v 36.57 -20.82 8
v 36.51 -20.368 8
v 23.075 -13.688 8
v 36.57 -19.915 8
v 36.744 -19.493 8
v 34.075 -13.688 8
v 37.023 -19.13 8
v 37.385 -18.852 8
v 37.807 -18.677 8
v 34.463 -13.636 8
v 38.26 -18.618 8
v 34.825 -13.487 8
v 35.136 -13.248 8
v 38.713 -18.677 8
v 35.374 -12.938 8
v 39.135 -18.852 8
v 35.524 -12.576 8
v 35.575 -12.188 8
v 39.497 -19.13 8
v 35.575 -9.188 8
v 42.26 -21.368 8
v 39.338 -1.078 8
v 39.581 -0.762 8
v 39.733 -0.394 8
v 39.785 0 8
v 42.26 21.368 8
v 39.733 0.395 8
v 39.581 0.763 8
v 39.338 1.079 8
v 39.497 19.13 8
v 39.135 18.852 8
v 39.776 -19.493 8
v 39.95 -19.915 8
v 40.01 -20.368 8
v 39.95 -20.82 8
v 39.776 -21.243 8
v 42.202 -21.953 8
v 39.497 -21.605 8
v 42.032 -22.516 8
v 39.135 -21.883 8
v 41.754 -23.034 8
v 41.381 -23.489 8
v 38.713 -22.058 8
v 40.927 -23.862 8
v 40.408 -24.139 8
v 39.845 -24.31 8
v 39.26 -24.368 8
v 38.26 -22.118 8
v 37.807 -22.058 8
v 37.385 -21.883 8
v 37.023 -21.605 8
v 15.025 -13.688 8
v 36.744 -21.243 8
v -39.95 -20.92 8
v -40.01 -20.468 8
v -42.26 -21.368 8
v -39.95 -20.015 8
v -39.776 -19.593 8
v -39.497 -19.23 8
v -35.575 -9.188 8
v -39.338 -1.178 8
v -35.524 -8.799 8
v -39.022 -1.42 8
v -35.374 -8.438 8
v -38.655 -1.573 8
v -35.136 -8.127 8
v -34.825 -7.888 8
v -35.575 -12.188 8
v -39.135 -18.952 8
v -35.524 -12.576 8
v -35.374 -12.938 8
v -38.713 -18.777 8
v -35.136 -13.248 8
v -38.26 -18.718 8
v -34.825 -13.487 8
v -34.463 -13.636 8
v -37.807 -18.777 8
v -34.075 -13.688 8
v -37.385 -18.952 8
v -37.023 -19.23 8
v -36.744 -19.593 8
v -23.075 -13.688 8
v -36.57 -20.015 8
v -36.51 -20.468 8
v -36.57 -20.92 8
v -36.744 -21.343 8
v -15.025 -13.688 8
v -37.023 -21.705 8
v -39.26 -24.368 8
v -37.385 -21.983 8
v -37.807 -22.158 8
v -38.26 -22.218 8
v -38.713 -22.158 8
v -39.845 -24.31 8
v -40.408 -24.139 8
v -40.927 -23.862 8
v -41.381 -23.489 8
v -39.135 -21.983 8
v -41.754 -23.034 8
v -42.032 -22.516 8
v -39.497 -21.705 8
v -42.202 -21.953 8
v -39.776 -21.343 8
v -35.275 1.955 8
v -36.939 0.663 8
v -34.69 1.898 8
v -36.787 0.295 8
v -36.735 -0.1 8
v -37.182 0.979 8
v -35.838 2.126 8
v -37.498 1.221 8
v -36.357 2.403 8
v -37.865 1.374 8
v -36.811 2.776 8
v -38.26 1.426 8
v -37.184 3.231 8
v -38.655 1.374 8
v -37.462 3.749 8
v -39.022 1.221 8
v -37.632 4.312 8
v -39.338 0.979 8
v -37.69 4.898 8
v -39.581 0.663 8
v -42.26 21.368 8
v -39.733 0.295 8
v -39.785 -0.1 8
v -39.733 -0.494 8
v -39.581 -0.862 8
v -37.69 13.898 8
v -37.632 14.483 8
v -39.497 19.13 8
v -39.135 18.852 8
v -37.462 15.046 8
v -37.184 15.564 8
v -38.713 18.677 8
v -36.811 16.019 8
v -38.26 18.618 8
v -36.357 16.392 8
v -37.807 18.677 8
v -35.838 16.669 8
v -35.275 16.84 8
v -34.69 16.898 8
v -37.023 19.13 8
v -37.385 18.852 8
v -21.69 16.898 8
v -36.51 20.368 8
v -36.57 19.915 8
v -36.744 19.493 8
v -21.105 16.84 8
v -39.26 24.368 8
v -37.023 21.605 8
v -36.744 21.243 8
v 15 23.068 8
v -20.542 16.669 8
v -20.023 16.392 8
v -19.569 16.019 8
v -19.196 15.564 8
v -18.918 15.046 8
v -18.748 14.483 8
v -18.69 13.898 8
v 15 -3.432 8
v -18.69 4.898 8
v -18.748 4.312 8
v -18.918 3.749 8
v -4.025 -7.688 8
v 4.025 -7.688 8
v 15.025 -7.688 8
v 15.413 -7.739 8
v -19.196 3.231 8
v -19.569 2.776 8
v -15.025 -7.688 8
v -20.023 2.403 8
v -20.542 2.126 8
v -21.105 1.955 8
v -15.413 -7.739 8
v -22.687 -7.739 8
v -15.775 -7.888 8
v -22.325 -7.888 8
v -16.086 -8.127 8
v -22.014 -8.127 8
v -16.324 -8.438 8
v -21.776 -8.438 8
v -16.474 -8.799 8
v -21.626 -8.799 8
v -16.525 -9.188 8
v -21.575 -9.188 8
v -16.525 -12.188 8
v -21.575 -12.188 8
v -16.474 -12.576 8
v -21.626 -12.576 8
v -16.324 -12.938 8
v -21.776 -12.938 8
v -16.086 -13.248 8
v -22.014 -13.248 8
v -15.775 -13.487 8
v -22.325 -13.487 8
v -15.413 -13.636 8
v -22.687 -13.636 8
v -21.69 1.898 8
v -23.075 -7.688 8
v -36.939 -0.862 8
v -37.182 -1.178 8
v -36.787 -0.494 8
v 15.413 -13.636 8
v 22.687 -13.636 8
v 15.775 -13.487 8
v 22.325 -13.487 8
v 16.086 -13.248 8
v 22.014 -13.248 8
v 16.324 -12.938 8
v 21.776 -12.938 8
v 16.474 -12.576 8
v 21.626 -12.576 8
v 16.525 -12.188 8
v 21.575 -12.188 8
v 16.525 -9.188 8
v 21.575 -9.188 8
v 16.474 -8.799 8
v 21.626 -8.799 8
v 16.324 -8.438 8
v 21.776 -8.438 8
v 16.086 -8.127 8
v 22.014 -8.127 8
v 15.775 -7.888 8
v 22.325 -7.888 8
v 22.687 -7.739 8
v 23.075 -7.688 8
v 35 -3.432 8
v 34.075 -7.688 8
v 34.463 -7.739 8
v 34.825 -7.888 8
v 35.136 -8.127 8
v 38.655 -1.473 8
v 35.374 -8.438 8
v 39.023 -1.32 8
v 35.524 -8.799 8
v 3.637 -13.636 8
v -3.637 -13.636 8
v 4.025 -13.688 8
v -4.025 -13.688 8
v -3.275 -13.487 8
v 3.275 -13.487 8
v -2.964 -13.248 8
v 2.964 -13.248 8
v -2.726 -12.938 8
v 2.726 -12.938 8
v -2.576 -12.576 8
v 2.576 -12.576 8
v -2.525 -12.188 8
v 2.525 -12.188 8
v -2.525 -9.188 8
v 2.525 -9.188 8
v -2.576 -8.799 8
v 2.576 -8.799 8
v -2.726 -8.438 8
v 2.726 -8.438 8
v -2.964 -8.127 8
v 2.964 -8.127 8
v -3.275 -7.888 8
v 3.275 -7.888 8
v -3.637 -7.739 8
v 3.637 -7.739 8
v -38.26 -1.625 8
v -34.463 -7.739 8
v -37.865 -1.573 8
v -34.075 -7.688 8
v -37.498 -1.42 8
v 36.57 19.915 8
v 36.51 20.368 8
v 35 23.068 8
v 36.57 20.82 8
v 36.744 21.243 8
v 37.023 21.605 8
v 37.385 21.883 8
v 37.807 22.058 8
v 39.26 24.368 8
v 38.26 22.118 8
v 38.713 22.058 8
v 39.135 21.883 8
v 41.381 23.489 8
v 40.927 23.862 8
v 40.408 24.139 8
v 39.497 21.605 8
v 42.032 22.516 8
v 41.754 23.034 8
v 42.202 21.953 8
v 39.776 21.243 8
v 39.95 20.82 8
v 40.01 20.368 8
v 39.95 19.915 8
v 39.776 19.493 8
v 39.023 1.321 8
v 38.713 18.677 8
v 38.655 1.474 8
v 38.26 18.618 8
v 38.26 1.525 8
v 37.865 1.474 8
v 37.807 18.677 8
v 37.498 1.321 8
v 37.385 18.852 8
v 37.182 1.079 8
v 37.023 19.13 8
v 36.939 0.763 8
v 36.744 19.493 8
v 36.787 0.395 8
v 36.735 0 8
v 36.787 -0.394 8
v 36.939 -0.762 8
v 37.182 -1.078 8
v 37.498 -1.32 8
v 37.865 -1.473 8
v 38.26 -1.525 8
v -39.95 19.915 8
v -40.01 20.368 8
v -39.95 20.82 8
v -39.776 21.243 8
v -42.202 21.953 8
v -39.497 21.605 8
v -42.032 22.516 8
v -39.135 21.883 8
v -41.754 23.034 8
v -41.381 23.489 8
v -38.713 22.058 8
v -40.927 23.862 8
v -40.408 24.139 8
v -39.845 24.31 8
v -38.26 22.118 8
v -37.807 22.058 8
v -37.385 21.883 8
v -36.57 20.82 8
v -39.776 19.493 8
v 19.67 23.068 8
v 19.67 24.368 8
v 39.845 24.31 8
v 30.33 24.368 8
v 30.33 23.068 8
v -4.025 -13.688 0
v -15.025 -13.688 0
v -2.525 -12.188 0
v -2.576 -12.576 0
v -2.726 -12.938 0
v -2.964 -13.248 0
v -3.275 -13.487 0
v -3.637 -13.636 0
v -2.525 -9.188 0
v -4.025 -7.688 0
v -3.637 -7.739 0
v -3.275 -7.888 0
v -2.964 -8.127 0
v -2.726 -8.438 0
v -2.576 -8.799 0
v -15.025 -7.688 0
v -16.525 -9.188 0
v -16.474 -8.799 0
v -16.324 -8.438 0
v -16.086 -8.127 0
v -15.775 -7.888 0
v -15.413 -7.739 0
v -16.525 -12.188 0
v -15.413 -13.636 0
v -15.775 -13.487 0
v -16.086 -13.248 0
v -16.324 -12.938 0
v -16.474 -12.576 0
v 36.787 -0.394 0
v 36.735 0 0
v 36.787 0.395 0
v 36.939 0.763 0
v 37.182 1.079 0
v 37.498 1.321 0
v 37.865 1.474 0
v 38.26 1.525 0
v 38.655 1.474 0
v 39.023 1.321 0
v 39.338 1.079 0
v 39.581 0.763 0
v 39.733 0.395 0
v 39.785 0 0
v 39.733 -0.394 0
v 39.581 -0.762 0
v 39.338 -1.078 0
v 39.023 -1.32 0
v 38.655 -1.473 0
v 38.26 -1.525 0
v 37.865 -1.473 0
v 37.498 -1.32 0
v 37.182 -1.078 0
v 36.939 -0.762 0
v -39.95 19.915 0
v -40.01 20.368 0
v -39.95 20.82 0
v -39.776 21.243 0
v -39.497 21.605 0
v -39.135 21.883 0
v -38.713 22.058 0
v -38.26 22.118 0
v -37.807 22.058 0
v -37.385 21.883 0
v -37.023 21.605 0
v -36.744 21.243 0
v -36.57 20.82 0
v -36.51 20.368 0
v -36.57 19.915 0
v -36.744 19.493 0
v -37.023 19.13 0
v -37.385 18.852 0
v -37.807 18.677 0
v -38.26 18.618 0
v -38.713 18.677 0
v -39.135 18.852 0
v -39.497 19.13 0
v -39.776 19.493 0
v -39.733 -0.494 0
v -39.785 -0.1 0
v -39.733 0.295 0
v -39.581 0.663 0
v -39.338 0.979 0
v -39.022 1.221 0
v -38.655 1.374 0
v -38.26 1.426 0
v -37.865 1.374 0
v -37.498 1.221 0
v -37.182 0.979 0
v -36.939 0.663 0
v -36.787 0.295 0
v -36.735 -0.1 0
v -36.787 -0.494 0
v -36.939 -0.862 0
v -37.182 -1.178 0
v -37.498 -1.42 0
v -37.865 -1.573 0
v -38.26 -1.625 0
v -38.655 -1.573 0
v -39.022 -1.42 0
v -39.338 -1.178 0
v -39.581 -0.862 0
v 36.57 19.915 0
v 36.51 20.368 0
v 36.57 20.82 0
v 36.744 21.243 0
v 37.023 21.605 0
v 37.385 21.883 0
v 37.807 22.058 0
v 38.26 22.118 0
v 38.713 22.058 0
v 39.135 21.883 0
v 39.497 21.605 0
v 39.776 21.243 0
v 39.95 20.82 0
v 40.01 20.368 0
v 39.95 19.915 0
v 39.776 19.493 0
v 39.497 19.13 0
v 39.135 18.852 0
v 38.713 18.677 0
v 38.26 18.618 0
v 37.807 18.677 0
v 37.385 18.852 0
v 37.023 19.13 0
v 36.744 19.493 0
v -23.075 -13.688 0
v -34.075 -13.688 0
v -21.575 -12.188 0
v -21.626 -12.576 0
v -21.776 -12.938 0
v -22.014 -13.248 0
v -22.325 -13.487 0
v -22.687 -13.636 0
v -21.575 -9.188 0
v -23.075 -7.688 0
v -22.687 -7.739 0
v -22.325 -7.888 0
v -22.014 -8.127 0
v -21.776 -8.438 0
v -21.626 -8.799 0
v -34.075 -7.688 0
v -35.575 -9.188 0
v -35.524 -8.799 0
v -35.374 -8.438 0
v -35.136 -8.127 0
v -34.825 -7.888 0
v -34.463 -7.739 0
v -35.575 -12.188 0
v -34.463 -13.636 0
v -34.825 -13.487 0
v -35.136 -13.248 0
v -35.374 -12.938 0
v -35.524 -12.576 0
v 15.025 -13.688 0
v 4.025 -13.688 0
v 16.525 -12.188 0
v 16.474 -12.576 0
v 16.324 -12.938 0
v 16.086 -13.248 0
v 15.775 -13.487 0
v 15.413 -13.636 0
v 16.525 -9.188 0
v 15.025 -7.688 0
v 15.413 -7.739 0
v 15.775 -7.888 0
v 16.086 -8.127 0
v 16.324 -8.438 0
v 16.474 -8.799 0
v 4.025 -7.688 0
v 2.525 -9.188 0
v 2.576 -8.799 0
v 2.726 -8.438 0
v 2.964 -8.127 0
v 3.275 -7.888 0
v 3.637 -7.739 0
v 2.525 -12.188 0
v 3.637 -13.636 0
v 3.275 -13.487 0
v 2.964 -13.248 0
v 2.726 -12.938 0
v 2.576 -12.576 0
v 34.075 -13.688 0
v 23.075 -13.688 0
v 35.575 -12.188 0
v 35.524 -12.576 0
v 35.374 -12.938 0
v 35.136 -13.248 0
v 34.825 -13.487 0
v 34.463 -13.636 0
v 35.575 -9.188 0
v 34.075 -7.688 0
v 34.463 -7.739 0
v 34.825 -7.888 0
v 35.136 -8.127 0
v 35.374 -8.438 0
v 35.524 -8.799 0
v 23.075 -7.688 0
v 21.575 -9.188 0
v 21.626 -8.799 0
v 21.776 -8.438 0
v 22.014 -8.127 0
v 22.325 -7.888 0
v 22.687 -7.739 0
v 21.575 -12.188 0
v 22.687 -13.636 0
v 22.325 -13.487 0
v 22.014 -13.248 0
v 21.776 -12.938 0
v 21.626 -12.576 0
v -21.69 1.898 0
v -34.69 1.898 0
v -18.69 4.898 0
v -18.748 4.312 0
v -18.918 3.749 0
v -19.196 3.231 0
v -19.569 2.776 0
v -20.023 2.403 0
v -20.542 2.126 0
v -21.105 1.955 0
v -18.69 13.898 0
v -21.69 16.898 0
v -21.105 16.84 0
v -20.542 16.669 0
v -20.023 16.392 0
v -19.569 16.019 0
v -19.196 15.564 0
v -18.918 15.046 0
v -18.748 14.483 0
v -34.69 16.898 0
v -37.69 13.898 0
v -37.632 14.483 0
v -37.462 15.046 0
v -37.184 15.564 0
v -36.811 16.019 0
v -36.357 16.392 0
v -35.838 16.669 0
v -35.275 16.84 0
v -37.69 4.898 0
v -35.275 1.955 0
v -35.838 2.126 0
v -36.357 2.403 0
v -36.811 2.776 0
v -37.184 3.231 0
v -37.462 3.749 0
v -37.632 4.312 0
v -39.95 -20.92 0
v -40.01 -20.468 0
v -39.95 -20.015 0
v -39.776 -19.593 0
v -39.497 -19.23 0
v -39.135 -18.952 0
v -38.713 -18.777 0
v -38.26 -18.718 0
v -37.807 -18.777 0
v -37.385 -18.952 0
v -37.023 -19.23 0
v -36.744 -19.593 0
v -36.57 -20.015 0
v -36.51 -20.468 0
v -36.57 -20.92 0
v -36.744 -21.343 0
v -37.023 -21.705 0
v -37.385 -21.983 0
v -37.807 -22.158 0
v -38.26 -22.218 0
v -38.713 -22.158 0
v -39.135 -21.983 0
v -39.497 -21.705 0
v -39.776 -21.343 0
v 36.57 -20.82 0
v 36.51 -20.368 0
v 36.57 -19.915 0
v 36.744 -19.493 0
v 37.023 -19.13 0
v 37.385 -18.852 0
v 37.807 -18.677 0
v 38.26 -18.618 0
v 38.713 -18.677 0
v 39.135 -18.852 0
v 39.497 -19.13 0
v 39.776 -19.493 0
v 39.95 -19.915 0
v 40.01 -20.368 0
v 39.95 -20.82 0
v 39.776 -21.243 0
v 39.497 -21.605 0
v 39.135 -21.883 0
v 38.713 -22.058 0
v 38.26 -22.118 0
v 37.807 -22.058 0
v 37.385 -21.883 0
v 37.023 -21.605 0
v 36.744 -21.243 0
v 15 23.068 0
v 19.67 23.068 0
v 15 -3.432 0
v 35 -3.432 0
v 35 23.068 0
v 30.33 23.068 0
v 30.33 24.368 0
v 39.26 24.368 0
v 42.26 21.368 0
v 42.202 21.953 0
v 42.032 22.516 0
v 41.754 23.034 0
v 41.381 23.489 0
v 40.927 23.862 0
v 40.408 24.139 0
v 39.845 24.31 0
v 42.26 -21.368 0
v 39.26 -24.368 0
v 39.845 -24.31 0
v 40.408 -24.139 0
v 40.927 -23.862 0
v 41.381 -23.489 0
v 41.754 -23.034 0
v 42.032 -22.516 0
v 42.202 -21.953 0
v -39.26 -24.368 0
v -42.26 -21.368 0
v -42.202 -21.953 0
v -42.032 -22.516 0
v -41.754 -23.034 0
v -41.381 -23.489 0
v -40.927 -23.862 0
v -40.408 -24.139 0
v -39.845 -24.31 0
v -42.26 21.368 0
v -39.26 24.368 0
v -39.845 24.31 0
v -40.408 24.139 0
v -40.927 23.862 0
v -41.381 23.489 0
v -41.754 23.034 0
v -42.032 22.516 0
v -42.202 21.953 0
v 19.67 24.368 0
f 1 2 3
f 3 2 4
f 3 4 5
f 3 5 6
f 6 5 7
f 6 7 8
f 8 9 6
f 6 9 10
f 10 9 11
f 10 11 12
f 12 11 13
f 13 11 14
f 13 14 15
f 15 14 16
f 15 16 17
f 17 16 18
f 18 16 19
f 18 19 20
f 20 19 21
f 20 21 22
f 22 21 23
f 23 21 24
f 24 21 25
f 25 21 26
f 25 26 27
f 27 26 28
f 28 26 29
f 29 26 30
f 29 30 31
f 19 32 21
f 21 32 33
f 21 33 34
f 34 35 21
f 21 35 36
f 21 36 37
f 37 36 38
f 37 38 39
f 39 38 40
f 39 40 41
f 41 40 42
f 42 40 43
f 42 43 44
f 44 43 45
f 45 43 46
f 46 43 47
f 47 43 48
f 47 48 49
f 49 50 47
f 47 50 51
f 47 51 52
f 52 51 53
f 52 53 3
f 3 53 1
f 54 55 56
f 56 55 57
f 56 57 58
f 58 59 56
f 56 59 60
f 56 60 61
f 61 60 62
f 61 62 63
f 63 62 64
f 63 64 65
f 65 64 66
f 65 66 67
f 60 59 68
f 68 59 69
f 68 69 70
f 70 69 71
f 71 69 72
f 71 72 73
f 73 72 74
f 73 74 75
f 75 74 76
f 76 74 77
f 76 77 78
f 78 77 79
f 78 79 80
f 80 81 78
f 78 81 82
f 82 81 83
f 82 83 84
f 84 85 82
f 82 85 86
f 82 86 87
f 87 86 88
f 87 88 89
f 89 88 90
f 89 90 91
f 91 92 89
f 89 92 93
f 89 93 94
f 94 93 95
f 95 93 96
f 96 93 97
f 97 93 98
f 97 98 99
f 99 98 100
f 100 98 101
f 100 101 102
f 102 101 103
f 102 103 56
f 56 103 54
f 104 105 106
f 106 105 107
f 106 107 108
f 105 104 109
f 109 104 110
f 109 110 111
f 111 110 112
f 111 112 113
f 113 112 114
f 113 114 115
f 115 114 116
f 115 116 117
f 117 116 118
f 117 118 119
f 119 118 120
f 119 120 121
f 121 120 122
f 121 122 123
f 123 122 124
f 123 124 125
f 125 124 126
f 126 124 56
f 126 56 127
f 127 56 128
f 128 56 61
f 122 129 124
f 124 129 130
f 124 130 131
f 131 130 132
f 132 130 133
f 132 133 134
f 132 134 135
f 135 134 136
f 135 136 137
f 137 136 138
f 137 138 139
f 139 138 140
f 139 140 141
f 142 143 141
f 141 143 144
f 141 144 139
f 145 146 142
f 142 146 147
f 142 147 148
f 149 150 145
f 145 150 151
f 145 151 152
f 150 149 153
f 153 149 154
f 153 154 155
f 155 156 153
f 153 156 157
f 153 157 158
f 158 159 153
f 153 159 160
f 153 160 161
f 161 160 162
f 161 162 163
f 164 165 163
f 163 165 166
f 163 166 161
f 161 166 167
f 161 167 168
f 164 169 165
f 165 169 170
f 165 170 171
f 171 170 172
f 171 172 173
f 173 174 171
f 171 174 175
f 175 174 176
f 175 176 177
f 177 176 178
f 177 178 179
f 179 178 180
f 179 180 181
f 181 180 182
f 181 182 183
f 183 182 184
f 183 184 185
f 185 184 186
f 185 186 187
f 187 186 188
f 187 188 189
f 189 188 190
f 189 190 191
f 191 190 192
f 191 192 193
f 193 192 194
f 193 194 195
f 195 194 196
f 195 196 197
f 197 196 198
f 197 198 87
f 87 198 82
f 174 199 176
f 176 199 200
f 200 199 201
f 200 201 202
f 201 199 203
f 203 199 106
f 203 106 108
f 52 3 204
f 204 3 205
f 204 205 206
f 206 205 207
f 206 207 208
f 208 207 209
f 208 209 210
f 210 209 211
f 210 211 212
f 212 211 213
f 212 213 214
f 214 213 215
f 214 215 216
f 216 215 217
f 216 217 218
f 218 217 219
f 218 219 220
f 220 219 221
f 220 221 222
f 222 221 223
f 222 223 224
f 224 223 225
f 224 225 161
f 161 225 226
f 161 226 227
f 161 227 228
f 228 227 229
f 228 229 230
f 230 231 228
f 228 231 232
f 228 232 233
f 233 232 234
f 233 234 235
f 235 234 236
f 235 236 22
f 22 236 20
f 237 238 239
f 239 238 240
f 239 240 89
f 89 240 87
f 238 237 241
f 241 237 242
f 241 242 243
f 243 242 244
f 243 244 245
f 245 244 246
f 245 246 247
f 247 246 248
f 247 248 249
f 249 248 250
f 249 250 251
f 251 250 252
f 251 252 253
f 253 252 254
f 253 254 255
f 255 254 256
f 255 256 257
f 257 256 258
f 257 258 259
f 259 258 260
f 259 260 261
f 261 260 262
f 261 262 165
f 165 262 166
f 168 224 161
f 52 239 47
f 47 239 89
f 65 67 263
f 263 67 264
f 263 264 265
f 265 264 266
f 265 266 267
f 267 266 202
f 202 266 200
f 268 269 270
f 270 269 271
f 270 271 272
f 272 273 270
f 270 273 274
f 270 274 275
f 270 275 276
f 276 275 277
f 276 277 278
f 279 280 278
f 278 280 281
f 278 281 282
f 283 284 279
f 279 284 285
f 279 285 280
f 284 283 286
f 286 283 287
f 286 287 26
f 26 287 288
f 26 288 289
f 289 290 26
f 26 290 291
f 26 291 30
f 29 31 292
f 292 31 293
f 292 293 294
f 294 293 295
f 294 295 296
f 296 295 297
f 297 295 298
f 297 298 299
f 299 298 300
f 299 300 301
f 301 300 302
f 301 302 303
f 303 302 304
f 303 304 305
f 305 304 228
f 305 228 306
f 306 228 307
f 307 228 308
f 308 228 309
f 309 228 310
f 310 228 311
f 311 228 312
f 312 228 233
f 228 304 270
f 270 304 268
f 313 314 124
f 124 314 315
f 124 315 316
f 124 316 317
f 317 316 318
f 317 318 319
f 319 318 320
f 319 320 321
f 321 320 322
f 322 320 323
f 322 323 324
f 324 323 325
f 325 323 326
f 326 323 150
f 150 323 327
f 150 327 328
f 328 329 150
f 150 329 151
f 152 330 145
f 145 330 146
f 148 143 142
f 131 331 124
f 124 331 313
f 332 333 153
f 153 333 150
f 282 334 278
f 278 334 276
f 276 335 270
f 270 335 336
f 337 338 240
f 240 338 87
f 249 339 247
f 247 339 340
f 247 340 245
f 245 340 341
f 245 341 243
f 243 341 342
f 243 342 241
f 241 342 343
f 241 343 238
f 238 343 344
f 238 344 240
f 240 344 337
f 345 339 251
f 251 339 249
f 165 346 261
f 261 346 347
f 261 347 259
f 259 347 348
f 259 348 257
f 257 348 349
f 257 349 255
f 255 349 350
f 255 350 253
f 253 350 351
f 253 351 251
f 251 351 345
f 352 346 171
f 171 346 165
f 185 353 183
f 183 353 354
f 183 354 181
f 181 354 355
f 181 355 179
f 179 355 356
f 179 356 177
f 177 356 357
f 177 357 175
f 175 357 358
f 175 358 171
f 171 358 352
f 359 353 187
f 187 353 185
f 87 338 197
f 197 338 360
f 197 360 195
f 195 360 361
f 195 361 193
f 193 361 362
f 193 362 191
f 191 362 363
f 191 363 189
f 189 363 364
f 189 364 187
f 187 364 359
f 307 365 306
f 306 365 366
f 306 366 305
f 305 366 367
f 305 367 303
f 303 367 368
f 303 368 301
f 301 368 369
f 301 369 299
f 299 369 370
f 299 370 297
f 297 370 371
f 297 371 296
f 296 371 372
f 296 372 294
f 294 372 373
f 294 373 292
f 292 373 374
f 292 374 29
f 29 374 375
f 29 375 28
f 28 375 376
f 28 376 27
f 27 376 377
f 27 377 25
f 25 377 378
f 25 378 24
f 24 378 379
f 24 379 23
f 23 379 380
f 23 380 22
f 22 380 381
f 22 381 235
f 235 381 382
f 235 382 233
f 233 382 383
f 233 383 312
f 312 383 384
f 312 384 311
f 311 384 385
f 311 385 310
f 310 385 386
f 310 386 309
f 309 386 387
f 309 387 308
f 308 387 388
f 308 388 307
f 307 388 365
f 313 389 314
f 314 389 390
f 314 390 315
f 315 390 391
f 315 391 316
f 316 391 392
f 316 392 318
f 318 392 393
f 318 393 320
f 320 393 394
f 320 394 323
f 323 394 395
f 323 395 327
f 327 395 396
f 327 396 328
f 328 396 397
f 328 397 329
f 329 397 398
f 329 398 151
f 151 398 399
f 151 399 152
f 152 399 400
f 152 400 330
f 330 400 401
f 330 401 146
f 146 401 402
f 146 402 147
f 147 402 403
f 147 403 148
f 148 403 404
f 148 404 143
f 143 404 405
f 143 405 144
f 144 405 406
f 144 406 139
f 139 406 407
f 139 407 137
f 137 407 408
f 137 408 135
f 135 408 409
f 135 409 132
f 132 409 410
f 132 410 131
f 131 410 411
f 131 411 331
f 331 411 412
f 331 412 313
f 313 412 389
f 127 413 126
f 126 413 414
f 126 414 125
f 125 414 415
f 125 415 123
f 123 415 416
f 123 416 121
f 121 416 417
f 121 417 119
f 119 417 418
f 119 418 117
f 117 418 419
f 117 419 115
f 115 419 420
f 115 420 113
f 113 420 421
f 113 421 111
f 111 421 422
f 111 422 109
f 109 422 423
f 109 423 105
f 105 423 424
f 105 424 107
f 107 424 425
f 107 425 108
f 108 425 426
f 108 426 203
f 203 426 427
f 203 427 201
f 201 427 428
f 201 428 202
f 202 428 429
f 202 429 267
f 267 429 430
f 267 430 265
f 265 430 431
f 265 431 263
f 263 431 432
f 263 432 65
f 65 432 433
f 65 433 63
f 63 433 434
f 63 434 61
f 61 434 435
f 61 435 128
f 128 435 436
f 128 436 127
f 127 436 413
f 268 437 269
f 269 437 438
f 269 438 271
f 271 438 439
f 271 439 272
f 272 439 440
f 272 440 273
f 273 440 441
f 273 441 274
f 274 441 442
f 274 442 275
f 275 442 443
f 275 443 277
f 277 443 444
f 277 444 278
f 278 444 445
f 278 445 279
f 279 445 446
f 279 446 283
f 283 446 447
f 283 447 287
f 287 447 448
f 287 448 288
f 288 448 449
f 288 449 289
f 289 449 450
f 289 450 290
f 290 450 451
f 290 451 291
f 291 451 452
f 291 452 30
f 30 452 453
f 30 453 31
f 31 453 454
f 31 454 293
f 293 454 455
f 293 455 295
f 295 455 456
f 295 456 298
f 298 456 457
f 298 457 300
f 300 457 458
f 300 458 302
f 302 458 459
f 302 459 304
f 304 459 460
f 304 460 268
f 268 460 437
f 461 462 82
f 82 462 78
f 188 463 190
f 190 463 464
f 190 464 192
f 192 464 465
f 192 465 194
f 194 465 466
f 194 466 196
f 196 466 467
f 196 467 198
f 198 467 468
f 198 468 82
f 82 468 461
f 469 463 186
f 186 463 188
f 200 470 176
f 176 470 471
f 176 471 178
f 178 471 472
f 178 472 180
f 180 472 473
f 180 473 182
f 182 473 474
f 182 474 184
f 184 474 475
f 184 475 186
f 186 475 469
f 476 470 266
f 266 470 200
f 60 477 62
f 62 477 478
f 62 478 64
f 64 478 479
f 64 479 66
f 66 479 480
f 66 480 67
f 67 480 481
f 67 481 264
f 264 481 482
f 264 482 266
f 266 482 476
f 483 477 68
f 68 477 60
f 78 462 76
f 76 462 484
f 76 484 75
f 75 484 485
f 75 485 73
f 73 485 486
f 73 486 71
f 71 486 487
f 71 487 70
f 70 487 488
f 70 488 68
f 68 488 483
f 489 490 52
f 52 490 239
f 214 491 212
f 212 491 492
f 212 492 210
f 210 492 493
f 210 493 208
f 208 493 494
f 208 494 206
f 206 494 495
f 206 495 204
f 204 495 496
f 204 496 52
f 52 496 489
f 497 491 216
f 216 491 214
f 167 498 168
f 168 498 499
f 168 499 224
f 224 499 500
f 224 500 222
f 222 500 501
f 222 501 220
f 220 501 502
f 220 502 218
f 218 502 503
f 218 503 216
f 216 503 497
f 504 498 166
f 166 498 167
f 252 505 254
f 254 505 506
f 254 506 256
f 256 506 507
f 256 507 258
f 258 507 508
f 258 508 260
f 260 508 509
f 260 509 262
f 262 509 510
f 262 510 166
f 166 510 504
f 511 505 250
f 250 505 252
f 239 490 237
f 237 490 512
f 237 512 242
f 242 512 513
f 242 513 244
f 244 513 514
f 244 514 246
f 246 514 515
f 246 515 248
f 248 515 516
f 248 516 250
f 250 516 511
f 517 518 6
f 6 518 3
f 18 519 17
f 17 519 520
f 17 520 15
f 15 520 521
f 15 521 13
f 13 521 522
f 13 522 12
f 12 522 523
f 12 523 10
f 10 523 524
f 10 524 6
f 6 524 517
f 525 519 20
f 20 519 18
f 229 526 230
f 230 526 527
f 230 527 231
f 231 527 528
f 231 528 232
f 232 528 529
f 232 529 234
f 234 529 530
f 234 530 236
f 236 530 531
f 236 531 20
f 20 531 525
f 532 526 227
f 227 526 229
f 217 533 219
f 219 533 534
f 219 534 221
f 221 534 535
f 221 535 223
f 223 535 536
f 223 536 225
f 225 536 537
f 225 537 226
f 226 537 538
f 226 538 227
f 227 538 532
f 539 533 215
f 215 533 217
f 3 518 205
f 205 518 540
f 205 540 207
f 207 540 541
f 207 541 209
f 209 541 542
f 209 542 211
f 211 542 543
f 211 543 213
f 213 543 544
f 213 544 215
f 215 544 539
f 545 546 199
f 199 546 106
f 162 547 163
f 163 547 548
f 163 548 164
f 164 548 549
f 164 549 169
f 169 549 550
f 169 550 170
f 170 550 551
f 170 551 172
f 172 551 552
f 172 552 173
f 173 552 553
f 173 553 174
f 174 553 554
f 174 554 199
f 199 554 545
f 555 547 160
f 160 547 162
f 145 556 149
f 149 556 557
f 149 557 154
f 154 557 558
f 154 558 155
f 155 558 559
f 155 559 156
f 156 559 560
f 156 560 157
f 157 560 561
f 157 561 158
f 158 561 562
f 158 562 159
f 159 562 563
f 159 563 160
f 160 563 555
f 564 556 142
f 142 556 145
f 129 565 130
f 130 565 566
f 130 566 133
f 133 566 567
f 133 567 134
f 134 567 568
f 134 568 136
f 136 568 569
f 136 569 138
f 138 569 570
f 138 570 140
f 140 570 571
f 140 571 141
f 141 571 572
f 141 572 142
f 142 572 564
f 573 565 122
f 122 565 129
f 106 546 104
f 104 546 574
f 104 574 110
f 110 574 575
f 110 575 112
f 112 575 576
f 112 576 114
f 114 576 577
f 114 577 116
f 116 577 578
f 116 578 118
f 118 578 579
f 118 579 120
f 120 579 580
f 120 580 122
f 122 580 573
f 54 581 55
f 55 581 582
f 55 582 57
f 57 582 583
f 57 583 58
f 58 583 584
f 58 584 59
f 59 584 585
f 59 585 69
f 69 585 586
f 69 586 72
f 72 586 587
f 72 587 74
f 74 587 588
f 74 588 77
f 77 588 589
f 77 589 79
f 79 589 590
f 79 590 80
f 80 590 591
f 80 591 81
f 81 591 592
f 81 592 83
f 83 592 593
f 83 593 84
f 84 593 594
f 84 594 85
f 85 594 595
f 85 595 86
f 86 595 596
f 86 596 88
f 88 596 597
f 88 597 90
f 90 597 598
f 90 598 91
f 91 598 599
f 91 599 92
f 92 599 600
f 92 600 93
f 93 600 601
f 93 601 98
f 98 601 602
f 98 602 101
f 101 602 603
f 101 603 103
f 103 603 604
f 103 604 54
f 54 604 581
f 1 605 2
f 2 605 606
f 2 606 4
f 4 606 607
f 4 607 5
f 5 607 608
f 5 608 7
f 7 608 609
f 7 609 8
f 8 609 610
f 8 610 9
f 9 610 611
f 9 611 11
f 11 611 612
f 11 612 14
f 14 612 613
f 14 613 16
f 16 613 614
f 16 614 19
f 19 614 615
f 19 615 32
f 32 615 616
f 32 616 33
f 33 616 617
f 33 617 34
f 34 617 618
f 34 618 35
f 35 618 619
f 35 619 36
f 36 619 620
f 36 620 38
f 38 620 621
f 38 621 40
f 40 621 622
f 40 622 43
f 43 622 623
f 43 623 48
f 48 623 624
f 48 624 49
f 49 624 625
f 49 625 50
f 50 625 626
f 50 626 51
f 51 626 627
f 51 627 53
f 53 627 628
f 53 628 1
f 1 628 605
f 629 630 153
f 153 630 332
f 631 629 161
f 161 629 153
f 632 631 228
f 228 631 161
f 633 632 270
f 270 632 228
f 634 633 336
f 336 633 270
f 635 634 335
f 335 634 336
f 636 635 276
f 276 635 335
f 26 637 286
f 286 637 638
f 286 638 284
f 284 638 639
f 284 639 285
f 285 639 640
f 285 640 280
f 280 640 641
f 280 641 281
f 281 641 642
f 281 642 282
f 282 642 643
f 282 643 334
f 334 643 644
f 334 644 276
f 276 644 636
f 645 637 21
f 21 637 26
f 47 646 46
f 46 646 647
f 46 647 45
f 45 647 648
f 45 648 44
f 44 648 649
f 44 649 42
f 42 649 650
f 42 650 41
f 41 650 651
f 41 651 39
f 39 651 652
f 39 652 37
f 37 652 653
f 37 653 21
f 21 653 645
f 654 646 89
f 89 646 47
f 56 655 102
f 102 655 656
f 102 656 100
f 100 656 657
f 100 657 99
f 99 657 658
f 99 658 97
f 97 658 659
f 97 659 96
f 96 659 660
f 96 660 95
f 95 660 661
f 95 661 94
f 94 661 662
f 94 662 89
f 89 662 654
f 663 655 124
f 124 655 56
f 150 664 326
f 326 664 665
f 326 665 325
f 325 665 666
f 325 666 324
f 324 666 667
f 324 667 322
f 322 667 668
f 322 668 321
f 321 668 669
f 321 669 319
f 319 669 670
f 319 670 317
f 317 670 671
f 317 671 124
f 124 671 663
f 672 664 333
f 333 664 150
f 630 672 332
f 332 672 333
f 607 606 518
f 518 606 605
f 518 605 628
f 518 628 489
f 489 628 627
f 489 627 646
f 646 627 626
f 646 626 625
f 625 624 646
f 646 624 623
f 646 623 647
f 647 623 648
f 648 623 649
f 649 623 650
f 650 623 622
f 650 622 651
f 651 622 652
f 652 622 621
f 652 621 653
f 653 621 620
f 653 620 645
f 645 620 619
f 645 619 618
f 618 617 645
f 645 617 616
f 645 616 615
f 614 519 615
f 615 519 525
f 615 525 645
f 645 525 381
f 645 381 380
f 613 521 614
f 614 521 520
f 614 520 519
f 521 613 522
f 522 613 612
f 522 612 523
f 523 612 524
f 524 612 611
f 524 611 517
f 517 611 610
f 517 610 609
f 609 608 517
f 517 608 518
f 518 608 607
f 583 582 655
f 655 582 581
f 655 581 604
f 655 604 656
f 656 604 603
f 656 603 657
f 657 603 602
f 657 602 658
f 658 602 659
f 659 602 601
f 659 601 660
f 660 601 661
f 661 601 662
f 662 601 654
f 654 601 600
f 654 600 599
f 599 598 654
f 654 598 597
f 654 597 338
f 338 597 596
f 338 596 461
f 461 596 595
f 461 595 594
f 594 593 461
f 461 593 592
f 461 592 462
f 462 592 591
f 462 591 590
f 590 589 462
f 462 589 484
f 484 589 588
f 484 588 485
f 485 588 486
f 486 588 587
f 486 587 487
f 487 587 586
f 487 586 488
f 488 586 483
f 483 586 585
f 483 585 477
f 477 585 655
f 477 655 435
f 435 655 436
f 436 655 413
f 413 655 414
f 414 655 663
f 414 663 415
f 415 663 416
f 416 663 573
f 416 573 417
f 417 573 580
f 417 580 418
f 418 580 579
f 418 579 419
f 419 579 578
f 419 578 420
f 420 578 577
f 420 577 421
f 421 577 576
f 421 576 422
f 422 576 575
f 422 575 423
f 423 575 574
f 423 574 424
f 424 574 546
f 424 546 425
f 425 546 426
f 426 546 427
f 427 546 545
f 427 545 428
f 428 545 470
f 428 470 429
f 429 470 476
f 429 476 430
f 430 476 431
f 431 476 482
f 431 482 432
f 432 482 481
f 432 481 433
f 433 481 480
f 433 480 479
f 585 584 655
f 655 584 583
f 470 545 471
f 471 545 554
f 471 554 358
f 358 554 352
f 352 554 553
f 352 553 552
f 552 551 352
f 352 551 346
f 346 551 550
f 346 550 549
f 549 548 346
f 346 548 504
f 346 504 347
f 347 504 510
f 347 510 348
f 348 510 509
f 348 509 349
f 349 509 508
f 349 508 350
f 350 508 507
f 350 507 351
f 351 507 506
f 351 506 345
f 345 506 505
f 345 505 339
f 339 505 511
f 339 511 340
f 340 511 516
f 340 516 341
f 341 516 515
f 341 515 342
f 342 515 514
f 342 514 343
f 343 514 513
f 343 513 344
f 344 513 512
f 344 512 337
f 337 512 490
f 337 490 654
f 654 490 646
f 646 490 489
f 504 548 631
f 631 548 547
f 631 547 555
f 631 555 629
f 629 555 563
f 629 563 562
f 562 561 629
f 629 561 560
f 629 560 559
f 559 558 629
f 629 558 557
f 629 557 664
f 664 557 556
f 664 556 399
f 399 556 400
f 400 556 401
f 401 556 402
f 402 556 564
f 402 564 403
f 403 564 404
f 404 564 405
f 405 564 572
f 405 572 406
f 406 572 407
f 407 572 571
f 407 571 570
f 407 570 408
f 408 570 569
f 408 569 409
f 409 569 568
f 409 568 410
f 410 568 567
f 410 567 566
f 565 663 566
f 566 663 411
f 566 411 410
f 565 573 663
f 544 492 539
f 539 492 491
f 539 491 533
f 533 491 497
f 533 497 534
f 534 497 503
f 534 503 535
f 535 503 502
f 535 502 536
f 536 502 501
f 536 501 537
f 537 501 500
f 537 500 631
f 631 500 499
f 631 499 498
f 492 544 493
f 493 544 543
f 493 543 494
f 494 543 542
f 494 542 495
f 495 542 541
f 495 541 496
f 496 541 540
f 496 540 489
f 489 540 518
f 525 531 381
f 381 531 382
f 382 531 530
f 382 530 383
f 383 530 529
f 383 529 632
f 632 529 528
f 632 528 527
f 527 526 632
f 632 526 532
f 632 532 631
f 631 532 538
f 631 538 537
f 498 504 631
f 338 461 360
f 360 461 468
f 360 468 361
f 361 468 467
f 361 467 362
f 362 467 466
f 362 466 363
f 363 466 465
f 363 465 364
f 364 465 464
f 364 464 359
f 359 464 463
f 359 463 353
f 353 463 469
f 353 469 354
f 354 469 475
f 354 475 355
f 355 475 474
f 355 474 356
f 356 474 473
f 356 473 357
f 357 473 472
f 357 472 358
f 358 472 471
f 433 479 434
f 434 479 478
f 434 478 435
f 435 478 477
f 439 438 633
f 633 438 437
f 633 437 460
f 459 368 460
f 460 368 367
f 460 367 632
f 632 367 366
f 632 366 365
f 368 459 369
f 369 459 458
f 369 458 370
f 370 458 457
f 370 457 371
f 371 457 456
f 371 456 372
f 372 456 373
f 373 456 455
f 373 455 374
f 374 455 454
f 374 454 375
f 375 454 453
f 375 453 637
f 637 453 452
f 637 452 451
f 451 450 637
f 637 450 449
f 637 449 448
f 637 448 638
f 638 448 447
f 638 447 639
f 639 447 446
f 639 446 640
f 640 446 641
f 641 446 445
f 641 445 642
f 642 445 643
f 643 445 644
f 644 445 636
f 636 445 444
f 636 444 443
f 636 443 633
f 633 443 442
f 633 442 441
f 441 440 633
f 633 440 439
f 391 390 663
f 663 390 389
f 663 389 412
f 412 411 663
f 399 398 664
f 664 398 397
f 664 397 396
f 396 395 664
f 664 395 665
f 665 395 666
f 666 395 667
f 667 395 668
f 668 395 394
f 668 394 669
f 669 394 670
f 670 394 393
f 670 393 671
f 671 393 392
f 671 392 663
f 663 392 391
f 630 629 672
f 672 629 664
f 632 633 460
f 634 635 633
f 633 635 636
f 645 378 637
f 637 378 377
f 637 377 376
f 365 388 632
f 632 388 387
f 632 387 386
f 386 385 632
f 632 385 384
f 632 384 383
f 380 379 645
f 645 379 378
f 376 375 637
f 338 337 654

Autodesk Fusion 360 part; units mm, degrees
sketch "Sketch1" plane through (0, 0, 0) normal (0, 0, 1) x (1, 0, 0)
  arc A0 (39.26, -24.3675) -> (42.26, -21.3675) centre (39.26, -21.3675) ccw
  circle A1 centre (38.26, -0.0995) radius 1.525
  circle A2 centre (-38.26, -20.3675) radius 1.75
  circle A3 centre (-38.26, 20.3675) radius 1.75
  line L0 (42.26, 21.3675) -> (42.26, -21.3675)
  arc A4 (-42.26, -21.3675) -> (-39.26, -24.3675) centre (-39.26, -21.3675) ccw
  line L1 (39.26, -24.3675) -> (-39.26, -24.3675)
  line L2 (-42.26, -21.3675) -> (-42.26, 21.3675)
  arc A5 (-39.26, 24.3675) -> (-42.26, 21.3675) centre (-39.26, 21.3675) ccw
  arc A6 (42.26, 21.3675) -> (39.26, 24.3675) centre (39.26, 21.3675) ccw
  circle A7 centre (38.26, 20.3675) radius 1.75
  circle A8 centre (-38.26, -0.0995) radius 1.525
  circle A9 centre (38.26, -20.3675) radius 1.75
  arc A10 (16.525, -9.1875) -> (15.025, -7.6875) centre (15.025, -9.1875) ccw
  arc A11 (-35.575, -12.1875) -> (-34.075, -13.6875) centre (-34.075, -12.1875) ccw
  line L3 (4.025, -7.6875) -> (15.025, -7.6875)
  arc A12 (-15.025, -7.6875) -> (-16.525, -9.1875) centre (-15.025, -9.1875) ccw
  line L4 (-16.525, -12.1875) -> (-16.525, -9.1875)
  line L5 (23.075, -13.6875) -> (34.075, -13.6875)
  line L6 (-15.025, -13.6875) -> (-4.025, -13.6875)
  arc A13 (21.575, -12.1875) -> (23.075, -13.6875) centre (23.075, -12.1875) ccw
  line L7 (-34.075, -7.6875) -> (-23.075, -7.6875)
  arc A14 (34.075, -13.6875) -> (35.575, -12.1875) centre (34.075, -12.1875) ccw
  line L8 (-34.075, -13.6875) -> (-23.075, -13.6875)
  line L9 (2.525, -12.1875) -> (2.525, -9.1875)
  arc A15 (35.575, -9.1875) -> (34.075, -7.6875) centre (34.075, -9.1875) ccw
  arc A16 (-2.525, -9.1875) -> (-4.025, -7.6875) centre (-4.025, -9.1875) ccw
  arc A17 (4.025, -7.6875) -> (2.525, -9.1875) centre (4.025, -9.1875) ccw
  line L10 (-35.575, -12.1875) -> (-35.575, -9.1875)
  line L11 (16.525, -12.1875) -> (16.525, -9.1875)
  arc A18 (-4.025, -13.6875) -> (-2.525, -12.1875) centre (-4.025, -12.1875) ccw
  line L12 (23.075, -7.6875) -> (34.075, -7.6875)
  arc A19 (-23.075, -13.6875) -> (-21.575, -12.1875) centre (-23.075, -12.1875) ccw
  line L13 (21.575, -12.1875) -> (21.575, -9.1875)
  line L14 (-15.025, -7.6875) -> (-4.025, -7.6875)
  line L15 (35.575, -12.1875) -> (35.575, -9.1875)
  arc A20 (2.525, -12.1875) -> (4.025, -13.6875) centre (4.025, -12.1875) ccw
  arc A21 (-16.525, -12.1875) -> (-15.025, -13.6875) centre (-15.025, -12.1875) ccw
  arc A22 (-21.575, -9.1875) -> (-23.075, -7.6875) centre (-23.075, -9.1875) ccw
  line L16 (-21.575, -12.1875) -> (-21.575, -9.1875)
  line L17 (-2.525, -12.1875) -> (-2.525, -9.1875)
  arc A23 (15.025, -13.6875) -> (16.525, -12.1875) centre (15.025, -12.1875) ccw
  arc A24 (-34.075, -7.6875) -> (-35.575, -9.1875) centre (-34.075, -9.1875) ccw
  line L18 (4.025, -13.6875) -> (15.025, -13.6875)
  arc A25 (23.075, -7.6875) -> (21.575, -9.1875) centre (23.075, -9.1875) ccw
  line L19 (-18.69, 4.8975) -> (-18.69, 13.8975)
  arc A26 (-18.69, 13.8975) -> (-21.69, 16.8975) centre (-21.69, 13.8975) ccw
  line L20 (-21.69, 16.8975) -> (-34.69, 16.8975)
  arc A27 (-34.69, 16.8975) -> (-37.69, 13.8975) centre (-34.69, 13.8975) ccw
  line L21 (-37.69, 4.8975) -> (-37.69, 13.8975)
  arc A28 (-37.69, 4.8975) -> (-34.69, 1.8975) centre (-34.69, 4.8975) ccw
  line L22 (-21.69, 1.8975) -> (-34.69, 1.8975)
  arc A29 (-21.69, 1.8975) -> (-18.69, 4.8975) centre (-21.69, 4.8975) ccw
  line L23 (35, -3.4325) -> (15, -3.4325)
  line L24 (19.67, 23.0675) -> (15, 23.0675)
  line L25 (30.33, 23.0675) -> (35, 23.0675)
  line L26 (15, -3.4325) -> (15, 23.0675)
  line L27 (35, 23.0675) -> (35, -3.4325)
  line L28 (19.67, 23.0675) -> (19.67, 24.3675)
  line L29 (30.33, 23.0675) -> (30.33, 24.3675)
  line L30 (39.26, 24.3675) -> (30.33, 24.3675)
  line L31 (19.67, 24.3675) -> (-39.26, 24.3675)
  point P0 (-42.26, -24.3675)
  dimension "d1" = 3.5
  dimension "d2" = 3.05
  dimension "d3" = 3.05
  dimension "d4" = 20.268
  dimension "d5" = 3
  dimension "d6" = 3
  dimension "d7" = 3
  dimension "d8" = 3
  dimension "d11" = 3.5
  dimension "d12" = 1.4142
  dimension "d13" = 4
  dimension "d14" = 10.68
  dimension "d15" = 6
  dimension "d16" = 14
  dimension "d17" = 1.5
  dimension "d18" = 1.5
  dimension "d19" = 1.5
  dimension "d20" = 1.5
  dimension "d21" = 1.5
  dimension "d22" = 1.5
  dimension "d23" = 1.5
  dimension "d24" = 1.5
  dimension "d25" = 1.5
  dimension "d26" = 1.5
  dimension "d27" = 1.5
  dimension "d28" = 1.5
  dimension "d29" = 1.5
  dimension "d30" = 1.5
  dimension "d31" = 1.5
  dimension "d32" = 1.5
  dimension "d33" = 6
  dimension "d34" = 6
  dimension "d35" = 6
  dimension "d36" = 10.68
  dimension "d37" = 10.68
  dimension "d38" = 10.68
  dimension "d40" = 6.685
  dimension "d41" = 5.05
  dimension "d42" = 5.05
  dimension "d43" = 5.05
  dimension "d44" = 4
  dimension "d45" = 4
  dimension "d46" = 4
  dimension "d47" = 1.4142
  dimension "d48" = 4
  dimension "d49" = 1.4142
  dimension "d50" = 20.268
  dimension "d51" = 14
  dimension "d52" = 14
  dimension "d53" = 14
  dimension "d54" = 6.685
  dimension "d55" = 3
  dimension "d56" = 3
  dimension "d57" = 3
  dimension "d58" = 3
  dimension "d59" = 19
  dimension "d60" = 15
  dimension "d61" = 4.57
  dimension "d63" = 26.5
  dimension "d64" = 26.5
  dimension "d65" = 20
  dimension "d66" = 10.66
  dimension "d67" = 1.3
  dimension "d68" = 1.3
  dimension "d69" = 4.67
  dimension "d70" = 4.67
  dimension "d71" = 7.26
  dimension "d78" = 3.5
  dimension "d79" = 3.5
extrude "Extrude1" add sketch "Sketch1" along normal blind 3
extrude "Extrude2" add 1 faces at (0.0405, 9.7541, 3) along direction (0, 0, 1) blind 4
extrude "Extrude4" add 1 faces at (0.0405, 9.7541, 7) along direction (0, 0, 1) blind 1
